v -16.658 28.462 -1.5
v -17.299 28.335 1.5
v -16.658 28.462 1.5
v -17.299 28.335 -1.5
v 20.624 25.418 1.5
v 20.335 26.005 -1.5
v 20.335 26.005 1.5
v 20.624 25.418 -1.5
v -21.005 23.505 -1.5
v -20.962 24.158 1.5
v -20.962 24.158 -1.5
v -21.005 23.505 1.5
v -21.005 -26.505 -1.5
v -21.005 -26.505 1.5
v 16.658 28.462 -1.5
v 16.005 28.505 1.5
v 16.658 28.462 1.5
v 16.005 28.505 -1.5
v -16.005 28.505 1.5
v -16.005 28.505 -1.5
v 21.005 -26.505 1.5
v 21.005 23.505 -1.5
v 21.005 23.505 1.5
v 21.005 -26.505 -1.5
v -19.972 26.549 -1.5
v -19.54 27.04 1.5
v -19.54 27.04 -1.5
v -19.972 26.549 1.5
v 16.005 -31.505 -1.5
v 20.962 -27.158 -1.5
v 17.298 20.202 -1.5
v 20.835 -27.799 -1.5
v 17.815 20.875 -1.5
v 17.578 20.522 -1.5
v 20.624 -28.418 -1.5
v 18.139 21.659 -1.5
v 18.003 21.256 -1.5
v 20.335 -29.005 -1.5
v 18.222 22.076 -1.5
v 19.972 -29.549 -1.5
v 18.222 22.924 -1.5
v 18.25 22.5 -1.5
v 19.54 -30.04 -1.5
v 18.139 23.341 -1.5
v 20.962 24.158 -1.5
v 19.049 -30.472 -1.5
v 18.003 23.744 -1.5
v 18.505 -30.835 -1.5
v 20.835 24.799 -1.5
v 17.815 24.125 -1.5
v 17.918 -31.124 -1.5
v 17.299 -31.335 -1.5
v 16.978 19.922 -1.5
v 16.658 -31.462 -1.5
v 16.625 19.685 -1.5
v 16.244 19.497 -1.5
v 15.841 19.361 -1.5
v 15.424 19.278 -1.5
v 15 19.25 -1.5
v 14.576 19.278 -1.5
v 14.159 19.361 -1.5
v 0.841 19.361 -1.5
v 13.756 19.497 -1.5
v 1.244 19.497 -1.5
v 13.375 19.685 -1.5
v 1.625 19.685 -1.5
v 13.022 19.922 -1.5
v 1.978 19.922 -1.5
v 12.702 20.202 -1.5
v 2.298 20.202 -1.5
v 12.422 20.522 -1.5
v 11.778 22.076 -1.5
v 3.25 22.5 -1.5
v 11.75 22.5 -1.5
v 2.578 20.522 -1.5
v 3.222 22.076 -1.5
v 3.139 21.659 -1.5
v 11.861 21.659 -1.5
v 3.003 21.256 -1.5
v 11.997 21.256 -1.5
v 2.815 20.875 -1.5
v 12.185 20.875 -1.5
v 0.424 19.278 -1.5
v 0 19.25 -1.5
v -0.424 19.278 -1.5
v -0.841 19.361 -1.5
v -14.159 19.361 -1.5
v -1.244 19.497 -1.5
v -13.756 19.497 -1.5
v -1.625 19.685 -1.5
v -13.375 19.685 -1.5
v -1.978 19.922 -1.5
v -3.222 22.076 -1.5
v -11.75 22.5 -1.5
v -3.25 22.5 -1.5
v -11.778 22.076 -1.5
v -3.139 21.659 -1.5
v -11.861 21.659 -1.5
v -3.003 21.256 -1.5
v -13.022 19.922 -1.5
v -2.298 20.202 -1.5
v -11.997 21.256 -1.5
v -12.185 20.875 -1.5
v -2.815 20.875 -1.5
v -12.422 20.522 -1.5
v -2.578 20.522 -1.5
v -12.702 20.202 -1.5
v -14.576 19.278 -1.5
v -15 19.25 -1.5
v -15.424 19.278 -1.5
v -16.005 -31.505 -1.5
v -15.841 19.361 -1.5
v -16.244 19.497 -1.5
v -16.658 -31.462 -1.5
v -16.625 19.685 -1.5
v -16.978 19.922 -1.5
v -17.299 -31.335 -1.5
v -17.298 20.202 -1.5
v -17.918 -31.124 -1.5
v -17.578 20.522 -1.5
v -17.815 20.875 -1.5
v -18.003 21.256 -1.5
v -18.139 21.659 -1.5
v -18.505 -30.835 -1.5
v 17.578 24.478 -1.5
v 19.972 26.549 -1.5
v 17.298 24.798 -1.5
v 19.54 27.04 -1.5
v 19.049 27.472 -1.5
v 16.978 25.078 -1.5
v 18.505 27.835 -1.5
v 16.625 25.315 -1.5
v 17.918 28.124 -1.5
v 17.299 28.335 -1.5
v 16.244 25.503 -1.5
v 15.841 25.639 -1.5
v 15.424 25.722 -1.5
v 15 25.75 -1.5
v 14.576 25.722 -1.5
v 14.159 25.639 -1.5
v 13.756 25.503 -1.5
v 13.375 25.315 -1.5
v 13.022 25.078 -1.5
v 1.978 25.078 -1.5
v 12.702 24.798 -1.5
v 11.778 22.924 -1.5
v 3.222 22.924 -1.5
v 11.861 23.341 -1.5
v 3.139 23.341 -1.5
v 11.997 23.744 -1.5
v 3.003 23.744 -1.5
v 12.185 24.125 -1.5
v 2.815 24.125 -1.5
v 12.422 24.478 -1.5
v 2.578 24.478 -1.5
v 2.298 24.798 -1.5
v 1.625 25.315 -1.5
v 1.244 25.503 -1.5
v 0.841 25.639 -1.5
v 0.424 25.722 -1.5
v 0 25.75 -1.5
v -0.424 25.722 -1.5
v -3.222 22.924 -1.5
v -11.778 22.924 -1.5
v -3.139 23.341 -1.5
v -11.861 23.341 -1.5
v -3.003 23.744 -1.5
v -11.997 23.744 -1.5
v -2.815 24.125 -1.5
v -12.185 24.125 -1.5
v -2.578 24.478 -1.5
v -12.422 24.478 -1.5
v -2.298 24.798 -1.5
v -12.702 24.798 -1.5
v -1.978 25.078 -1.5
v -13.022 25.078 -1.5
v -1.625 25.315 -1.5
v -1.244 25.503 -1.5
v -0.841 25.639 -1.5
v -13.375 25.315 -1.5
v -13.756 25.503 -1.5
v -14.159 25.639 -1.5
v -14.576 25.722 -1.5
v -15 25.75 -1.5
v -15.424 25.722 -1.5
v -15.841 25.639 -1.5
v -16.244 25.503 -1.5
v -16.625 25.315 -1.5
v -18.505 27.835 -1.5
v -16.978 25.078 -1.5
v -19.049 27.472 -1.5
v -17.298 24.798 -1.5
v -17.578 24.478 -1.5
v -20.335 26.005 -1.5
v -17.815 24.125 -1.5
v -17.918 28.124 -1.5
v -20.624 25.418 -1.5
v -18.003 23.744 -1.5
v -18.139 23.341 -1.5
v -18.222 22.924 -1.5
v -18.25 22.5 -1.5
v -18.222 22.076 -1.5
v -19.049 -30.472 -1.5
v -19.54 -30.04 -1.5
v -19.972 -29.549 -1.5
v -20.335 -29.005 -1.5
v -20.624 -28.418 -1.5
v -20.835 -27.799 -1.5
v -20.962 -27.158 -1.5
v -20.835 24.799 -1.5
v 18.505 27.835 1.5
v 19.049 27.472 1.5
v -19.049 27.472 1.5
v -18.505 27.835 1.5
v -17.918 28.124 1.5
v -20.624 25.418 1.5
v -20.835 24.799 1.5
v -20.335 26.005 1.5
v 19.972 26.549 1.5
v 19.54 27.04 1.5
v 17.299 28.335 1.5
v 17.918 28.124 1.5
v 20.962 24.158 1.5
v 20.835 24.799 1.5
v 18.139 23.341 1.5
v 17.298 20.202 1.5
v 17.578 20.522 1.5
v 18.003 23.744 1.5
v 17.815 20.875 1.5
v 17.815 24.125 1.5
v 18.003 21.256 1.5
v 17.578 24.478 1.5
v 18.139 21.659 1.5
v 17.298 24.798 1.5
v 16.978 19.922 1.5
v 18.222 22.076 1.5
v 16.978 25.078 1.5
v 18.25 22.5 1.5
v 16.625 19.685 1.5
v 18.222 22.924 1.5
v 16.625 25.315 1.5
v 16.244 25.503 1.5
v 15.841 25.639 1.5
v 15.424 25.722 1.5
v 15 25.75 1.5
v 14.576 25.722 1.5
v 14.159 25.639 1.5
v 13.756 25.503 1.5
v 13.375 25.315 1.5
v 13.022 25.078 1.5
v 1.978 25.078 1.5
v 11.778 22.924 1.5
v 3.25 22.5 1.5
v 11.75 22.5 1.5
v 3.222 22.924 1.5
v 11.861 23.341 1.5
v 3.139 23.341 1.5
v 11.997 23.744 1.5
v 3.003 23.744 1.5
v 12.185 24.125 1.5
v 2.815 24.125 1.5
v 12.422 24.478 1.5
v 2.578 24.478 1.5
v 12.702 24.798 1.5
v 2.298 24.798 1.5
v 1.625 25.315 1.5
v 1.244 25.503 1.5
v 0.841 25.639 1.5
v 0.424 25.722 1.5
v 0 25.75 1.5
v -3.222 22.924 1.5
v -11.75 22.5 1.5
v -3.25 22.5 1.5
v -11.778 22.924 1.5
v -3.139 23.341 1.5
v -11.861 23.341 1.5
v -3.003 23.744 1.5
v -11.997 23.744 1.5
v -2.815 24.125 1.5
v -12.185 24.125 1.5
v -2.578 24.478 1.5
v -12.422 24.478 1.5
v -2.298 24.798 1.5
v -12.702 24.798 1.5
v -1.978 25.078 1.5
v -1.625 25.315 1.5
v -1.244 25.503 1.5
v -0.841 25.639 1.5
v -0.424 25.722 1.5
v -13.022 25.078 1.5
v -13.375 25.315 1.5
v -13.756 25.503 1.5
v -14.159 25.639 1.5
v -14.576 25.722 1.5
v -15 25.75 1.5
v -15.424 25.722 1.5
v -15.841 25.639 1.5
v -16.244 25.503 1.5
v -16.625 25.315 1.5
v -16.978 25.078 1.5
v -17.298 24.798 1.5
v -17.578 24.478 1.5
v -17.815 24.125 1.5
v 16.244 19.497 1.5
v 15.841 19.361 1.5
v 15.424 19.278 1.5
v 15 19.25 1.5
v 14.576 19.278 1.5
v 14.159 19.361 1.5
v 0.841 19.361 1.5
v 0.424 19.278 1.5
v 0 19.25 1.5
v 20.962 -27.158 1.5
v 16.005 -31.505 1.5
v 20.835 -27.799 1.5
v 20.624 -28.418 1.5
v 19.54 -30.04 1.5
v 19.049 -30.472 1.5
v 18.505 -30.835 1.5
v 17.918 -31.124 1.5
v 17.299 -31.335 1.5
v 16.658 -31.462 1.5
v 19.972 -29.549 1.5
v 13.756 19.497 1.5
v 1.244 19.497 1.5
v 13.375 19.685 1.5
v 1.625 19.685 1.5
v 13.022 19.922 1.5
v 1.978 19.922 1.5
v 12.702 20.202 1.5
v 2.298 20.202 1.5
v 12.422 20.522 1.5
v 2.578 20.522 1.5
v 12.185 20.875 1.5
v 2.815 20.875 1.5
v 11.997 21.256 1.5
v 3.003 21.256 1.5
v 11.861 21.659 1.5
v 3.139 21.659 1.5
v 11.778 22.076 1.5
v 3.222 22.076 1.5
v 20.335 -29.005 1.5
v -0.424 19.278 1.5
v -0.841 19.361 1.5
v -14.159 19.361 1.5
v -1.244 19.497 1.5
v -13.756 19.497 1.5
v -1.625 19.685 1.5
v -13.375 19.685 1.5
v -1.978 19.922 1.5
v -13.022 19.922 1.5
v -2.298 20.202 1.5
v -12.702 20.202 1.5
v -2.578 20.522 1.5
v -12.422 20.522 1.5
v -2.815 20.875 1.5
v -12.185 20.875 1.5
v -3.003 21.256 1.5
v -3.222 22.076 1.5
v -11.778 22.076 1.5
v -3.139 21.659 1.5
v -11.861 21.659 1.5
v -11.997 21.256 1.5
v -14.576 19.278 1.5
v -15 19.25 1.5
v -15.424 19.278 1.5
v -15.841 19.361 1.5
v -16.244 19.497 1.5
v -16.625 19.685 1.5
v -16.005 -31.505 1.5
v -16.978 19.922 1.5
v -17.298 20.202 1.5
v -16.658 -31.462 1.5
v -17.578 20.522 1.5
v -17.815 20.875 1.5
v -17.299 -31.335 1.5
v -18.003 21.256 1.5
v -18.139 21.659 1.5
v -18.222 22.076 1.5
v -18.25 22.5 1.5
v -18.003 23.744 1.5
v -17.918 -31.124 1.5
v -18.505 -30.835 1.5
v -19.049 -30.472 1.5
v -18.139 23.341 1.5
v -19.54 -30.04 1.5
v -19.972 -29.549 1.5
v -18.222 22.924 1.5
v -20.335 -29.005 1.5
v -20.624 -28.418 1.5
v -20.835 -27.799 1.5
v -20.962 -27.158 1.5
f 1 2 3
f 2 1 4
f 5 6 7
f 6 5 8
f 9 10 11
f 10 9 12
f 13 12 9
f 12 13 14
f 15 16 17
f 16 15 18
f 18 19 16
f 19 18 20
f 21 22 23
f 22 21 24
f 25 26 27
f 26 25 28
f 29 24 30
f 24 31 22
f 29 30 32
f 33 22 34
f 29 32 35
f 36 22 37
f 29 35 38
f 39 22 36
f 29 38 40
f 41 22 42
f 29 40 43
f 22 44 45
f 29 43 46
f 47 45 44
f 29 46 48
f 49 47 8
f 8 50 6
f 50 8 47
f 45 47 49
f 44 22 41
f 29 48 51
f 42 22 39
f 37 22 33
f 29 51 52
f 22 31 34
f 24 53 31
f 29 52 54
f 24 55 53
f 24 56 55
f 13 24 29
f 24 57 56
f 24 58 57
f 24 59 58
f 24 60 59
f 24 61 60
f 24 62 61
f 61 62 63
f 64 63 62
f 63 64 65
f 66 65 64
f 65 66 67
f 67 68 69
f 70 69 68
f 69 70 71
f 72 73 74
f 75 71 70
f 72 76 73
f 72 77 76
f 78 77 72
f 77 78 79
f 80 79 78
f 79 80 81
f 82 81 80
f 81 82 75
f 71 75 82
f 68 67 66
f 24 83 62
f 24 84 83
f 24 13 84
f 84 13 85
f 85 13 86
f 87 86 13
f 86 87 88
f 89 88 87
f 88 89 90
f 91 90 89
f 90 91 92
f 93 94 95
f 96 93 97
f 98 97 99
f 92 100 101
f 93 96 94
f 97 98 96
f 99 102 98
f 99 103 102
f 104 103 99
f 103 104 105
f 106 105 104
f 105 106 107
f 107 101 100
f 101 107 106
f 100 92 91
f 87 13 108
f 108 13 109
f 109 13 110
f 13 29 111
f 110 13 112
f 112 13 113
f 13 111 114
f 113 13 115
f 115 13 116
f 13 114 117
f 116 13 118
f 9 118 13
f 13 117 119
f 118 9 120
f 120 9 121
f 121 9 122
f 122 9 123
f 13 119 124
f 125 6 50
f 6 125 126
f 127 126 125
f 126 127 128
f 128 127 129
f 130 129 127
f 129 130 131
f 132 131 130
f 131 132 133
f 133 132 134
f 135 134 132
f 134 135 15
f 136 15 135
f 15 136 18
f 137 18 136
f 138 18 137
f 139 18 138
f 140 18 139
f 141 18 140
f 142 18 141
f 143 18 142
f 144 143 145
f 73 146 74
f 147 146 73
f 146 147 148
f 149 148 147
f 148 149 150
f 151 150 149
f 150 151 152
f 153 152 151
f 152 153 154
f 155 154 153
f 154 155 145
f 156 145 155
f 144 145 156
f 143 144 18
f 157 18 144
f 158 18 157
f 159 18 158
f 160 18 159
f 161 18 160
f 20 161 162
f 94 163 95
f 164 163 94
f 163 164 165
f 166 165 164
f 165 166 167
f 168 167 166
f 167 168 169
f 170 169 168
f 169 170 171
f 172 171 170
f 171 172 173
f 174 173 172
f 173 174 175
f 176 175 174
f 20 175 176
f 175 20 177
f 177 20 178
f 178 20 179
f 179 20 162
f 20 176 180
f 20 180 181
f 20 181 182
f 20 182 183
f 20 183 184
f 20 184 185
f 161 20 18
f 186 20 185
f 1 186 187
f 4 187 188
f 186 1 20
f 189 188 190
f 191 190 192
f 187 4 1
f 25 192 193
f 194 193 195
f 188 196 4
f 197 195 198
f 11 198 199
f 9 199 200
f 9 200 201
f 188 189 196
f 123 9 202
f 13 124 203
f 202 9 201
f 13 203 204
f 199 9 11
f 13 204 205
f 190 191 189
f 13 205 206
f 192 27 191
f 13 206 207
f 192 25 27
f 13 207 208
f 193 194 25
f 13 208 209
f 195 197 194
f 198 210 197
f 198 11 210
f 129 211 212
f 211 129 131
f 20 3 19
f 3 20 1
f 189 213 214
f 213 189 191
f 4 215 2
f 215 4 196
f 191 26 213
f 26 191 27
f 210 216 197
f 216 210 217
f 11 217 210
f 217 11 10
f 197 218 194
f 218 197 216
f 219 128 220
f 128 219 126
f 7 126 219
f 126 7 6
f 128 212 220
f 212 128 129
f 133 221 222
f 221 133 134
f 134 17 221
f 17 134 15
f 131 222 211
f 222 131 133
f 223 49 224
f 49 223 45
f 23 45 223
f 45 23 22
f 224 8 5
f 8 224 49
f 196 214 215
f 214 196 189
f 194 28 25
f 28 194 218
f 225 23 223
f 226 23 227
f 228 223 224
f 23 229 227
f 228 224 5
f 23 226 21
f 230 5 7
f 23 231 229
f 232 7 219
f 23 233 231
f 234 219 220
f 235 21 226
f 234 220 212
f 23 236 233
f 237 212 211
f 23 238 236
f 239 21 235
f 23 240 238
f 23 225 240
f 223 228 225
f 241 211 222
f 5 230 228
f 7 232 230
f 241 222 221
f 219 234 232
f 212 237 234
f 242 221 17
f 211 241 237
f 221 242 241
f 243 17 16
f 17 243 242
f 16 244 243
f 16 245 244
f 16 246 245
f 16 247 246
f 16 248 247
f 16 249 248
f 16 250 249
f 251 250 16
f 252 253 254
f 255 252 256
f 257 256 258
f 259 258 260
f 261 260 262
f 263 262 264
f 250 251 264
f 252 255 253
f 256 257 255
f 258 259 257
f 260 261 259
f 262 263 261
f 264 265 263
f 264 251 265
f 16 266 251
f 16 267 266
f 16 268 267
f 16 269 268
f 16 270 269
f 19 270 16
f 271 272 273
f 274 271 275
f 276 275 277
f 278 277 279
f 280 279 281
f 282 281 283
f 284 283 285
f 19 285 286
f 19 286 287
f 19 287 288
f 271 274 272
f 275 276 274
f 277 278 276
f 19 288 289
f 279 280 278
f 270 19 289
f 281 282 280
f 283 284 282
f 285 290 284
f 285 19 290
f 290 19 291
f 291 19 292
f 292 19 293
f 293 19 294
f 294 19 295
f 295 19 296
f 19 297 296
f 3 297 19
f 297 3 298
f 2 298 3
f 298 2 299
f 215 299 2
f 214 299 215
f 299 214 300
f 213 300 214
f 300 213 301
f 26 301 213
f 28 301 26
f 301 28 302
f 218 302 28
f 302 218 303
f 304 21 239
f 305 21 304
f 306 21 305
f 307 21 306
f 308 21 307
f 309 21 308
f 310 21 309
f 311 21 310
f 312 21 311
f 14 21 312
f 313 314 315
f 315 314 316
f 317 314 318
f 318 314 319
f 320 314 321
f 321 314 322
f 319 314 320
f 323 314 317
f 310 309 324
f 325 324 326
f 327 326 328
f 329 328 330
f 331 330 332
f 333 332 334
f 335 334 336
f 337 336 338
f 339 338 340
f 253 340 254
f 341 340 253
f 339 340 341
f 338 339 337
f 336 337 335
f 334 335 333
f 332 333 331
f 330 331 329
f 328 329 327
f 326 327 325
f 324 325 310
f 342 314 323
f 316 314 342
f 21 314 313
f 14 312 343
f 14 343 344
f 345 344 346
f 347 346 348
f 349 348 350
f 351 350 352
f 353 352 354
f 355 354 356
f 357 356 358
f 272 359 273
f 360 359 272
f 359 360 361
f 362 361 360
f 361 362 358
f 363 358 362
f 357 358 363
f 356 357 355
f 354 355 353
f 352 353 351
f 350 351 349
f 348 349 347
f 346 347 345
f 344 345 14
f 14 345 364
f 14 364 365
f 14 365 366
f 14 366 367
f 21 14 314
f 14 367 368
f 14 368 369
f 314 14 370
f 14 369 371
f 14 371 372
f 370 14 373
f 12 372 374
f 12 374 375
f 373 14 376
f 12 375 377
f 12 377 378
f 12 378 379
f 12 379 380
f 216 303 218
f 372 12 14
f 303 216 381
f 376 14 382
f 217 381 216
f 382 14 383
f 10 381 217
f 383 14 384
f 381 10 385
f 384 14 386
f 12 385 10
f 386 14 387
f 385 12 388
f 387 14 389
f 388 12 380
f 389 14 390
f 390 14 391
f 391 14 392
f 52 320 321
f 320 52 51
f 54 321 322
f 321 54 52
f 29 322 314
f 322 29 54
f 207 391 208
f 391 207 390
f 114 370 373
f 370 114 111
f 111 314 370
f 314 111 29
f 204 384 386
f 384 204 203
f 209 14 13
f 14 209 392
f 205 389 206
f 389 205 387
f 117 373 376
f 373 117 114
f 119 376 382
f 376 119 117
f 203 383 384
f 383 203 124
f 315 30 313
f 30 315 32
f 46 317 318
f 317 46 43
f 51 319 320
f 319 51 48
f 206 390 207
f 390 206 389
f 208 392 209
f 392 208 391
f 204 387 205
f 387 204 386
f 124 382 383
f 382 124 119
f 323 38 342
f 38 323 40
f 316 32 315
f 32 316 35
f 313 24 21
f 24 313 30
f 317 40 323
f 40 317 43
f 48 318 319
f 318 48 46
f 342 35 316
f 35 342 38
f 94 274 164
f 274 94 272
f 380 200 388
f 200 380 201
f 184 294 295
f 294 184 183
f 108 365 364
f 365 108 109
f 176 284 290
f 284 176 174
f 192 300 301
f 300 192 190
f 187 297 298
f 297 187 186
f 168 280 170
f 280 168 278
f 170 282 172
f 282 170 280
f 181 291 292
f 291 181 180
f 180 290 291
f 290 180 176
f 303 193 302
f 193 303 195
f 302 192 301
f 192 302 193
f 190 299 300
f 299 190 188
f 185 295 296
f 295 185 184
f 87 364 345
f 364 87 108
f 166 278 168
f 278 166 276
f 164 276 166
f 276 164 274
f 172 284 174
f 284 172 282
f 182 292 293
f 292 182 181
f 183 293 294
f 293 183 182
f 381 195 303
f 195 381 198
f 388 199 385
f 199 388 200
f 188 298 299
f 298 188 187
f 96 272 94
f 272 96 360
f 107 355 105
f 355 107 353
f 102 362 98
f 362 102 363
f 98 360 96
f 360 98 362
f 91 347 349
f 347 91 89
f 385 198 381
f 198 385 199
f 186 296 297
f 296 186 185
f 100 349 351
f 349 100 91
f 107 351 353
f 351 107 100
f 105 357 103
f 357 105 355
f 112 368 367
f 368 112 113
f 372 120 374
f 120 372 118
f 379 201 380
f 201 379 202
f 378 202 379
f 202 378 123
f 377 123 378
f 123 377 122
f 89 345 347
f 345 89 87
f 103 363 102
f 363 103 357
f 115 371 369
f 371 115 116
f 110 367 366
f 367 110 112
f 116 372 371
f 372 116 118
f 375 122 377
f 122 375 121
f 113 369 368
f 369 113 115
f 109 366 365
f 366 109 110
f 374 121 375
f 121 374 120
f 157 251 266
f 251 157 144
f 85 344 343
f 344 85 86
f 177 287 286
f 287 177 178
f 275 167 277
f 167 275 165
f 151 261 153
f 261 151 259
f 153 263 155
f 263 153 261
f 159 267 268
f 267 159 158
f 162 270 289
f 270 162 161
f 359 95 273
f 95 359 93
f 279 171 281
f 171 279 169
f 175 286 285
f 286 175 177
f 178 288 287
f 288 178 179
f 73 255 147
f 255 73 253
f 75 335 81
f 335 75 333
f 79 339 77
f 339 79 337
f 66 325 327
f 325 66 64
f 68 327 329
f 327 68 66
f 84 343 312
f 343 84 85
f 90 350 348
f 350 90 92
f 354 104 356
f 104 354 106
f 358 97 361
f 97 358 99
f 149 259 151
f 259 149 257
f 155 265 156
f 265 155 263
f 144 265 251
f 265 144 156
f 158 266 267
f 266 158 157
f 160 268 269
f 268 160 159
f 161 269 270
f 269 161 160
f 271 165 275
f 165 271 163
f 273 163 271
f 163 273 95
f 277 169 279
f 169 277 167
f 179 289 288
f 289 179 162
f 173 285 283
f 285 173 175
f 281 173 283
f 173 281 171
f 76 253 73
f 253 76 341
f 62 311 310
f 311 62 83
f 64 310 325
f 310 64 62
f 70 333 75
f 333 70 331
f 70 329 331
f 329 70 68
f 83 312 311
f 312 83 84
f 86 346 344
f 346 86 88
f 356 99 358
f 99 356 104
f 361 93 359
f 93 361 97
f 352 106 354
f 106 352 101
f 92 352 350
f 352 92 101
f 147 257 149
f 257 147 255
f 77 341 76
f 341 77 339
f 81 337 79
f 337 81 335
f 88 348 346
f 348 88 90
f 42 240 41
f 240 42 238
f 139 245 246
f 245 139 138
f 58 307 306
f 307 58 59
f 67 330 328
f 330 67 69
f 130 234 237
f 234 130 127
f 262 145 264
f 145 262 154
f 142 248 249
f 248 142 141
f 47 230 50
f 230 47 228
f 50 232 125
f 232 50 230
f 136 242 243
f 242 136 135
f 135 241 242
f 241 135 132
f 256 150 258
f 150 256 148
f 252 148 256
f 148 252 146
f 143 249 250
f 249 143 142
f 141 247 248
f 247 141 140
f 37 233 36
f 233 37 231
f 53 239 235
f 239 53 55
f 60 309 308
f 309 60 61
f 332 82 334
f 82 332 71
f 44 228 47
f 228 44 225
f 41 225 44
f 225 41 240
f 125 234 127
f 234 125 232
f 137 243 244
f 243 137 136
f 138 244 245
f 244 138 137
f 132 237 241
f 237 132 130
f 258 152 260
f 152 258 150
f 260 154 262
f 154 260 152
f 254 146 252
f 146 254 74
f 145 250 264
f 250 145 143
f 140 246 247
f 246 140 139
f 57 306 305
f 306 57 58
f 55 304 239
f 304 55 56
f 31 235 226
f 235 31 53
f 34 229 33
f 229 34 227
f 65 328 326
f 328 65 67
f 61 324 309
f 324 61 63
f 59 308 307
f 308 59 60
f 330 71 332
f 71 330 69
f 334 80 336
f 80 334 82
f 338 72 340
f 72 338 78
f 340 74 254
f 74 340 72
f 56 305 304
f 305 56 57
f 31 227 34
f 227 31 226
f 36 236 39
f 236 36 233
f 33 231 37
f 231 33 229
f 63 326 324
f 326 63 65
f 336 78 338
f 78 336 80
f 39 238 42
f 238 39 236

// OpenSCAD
$fn = 48;


difference() {
	union() {
		color(alpha = 1.0000000000, c = "Gold") {
			translate(v = [0, 0, 1.5000000000]) {
				rotate(a = [0, 0, 0]) {
					translate(v = [0, 0, -3]) {
						linear_extrude(height = 3) {
							offset(r = 5) {
								square(center = true, size = [32.0100000000, 47.0100000000]);
							}
						}
					}
				}
			}
		}
		color(alpha = 1.0000000000, c = "Gold") {
			translate(v = [0, -3, 1.5000000000]) {
				rotate(a = [0, 0, 0]) {
					translate(v = [0, 0, -3]) {
						linear_extrude(height = 3) {
							offset(r = 5) {
								square(center = true, size = [32.0100000000, 47.0100000000]);
							}
						}
					}
				}
			}
		}
	}
	union() {
		color(alpha = 1.0000000000, c = "Gold") {
			translate(v = [-15.0000000000, 22.5000000000, 0]) {
				rotate(a = [0, 0, 0]) {
					translate(v = [0, 0, -250]) {
						cylinder(h = 500, r = 3.2500000000);
					}
				}
			}
		}
		color(alpha = 1.0000000000, c = "Gold") {
			translate(v = [0.0000000000, 22.5000000000, 0]) {
				rotate(a = [0, 0, 0]) {
					translate(v = [0, 0, -250]) {
						cylinder(h = 500, r = 3.2500000000);
					}
				}
			}
		}
		color(alpha = 1.0000000000, c = "Gold") {
			translate(v = [15.0000000000, 22.5000000000, 0]) {
				rotate(a = [0, 0, 0]) {
					translate(v = [0, 0, -250]) {
						cylinder(h = 500, r = 3.2500000000);
					}
				}
			}
		}
	}
}
